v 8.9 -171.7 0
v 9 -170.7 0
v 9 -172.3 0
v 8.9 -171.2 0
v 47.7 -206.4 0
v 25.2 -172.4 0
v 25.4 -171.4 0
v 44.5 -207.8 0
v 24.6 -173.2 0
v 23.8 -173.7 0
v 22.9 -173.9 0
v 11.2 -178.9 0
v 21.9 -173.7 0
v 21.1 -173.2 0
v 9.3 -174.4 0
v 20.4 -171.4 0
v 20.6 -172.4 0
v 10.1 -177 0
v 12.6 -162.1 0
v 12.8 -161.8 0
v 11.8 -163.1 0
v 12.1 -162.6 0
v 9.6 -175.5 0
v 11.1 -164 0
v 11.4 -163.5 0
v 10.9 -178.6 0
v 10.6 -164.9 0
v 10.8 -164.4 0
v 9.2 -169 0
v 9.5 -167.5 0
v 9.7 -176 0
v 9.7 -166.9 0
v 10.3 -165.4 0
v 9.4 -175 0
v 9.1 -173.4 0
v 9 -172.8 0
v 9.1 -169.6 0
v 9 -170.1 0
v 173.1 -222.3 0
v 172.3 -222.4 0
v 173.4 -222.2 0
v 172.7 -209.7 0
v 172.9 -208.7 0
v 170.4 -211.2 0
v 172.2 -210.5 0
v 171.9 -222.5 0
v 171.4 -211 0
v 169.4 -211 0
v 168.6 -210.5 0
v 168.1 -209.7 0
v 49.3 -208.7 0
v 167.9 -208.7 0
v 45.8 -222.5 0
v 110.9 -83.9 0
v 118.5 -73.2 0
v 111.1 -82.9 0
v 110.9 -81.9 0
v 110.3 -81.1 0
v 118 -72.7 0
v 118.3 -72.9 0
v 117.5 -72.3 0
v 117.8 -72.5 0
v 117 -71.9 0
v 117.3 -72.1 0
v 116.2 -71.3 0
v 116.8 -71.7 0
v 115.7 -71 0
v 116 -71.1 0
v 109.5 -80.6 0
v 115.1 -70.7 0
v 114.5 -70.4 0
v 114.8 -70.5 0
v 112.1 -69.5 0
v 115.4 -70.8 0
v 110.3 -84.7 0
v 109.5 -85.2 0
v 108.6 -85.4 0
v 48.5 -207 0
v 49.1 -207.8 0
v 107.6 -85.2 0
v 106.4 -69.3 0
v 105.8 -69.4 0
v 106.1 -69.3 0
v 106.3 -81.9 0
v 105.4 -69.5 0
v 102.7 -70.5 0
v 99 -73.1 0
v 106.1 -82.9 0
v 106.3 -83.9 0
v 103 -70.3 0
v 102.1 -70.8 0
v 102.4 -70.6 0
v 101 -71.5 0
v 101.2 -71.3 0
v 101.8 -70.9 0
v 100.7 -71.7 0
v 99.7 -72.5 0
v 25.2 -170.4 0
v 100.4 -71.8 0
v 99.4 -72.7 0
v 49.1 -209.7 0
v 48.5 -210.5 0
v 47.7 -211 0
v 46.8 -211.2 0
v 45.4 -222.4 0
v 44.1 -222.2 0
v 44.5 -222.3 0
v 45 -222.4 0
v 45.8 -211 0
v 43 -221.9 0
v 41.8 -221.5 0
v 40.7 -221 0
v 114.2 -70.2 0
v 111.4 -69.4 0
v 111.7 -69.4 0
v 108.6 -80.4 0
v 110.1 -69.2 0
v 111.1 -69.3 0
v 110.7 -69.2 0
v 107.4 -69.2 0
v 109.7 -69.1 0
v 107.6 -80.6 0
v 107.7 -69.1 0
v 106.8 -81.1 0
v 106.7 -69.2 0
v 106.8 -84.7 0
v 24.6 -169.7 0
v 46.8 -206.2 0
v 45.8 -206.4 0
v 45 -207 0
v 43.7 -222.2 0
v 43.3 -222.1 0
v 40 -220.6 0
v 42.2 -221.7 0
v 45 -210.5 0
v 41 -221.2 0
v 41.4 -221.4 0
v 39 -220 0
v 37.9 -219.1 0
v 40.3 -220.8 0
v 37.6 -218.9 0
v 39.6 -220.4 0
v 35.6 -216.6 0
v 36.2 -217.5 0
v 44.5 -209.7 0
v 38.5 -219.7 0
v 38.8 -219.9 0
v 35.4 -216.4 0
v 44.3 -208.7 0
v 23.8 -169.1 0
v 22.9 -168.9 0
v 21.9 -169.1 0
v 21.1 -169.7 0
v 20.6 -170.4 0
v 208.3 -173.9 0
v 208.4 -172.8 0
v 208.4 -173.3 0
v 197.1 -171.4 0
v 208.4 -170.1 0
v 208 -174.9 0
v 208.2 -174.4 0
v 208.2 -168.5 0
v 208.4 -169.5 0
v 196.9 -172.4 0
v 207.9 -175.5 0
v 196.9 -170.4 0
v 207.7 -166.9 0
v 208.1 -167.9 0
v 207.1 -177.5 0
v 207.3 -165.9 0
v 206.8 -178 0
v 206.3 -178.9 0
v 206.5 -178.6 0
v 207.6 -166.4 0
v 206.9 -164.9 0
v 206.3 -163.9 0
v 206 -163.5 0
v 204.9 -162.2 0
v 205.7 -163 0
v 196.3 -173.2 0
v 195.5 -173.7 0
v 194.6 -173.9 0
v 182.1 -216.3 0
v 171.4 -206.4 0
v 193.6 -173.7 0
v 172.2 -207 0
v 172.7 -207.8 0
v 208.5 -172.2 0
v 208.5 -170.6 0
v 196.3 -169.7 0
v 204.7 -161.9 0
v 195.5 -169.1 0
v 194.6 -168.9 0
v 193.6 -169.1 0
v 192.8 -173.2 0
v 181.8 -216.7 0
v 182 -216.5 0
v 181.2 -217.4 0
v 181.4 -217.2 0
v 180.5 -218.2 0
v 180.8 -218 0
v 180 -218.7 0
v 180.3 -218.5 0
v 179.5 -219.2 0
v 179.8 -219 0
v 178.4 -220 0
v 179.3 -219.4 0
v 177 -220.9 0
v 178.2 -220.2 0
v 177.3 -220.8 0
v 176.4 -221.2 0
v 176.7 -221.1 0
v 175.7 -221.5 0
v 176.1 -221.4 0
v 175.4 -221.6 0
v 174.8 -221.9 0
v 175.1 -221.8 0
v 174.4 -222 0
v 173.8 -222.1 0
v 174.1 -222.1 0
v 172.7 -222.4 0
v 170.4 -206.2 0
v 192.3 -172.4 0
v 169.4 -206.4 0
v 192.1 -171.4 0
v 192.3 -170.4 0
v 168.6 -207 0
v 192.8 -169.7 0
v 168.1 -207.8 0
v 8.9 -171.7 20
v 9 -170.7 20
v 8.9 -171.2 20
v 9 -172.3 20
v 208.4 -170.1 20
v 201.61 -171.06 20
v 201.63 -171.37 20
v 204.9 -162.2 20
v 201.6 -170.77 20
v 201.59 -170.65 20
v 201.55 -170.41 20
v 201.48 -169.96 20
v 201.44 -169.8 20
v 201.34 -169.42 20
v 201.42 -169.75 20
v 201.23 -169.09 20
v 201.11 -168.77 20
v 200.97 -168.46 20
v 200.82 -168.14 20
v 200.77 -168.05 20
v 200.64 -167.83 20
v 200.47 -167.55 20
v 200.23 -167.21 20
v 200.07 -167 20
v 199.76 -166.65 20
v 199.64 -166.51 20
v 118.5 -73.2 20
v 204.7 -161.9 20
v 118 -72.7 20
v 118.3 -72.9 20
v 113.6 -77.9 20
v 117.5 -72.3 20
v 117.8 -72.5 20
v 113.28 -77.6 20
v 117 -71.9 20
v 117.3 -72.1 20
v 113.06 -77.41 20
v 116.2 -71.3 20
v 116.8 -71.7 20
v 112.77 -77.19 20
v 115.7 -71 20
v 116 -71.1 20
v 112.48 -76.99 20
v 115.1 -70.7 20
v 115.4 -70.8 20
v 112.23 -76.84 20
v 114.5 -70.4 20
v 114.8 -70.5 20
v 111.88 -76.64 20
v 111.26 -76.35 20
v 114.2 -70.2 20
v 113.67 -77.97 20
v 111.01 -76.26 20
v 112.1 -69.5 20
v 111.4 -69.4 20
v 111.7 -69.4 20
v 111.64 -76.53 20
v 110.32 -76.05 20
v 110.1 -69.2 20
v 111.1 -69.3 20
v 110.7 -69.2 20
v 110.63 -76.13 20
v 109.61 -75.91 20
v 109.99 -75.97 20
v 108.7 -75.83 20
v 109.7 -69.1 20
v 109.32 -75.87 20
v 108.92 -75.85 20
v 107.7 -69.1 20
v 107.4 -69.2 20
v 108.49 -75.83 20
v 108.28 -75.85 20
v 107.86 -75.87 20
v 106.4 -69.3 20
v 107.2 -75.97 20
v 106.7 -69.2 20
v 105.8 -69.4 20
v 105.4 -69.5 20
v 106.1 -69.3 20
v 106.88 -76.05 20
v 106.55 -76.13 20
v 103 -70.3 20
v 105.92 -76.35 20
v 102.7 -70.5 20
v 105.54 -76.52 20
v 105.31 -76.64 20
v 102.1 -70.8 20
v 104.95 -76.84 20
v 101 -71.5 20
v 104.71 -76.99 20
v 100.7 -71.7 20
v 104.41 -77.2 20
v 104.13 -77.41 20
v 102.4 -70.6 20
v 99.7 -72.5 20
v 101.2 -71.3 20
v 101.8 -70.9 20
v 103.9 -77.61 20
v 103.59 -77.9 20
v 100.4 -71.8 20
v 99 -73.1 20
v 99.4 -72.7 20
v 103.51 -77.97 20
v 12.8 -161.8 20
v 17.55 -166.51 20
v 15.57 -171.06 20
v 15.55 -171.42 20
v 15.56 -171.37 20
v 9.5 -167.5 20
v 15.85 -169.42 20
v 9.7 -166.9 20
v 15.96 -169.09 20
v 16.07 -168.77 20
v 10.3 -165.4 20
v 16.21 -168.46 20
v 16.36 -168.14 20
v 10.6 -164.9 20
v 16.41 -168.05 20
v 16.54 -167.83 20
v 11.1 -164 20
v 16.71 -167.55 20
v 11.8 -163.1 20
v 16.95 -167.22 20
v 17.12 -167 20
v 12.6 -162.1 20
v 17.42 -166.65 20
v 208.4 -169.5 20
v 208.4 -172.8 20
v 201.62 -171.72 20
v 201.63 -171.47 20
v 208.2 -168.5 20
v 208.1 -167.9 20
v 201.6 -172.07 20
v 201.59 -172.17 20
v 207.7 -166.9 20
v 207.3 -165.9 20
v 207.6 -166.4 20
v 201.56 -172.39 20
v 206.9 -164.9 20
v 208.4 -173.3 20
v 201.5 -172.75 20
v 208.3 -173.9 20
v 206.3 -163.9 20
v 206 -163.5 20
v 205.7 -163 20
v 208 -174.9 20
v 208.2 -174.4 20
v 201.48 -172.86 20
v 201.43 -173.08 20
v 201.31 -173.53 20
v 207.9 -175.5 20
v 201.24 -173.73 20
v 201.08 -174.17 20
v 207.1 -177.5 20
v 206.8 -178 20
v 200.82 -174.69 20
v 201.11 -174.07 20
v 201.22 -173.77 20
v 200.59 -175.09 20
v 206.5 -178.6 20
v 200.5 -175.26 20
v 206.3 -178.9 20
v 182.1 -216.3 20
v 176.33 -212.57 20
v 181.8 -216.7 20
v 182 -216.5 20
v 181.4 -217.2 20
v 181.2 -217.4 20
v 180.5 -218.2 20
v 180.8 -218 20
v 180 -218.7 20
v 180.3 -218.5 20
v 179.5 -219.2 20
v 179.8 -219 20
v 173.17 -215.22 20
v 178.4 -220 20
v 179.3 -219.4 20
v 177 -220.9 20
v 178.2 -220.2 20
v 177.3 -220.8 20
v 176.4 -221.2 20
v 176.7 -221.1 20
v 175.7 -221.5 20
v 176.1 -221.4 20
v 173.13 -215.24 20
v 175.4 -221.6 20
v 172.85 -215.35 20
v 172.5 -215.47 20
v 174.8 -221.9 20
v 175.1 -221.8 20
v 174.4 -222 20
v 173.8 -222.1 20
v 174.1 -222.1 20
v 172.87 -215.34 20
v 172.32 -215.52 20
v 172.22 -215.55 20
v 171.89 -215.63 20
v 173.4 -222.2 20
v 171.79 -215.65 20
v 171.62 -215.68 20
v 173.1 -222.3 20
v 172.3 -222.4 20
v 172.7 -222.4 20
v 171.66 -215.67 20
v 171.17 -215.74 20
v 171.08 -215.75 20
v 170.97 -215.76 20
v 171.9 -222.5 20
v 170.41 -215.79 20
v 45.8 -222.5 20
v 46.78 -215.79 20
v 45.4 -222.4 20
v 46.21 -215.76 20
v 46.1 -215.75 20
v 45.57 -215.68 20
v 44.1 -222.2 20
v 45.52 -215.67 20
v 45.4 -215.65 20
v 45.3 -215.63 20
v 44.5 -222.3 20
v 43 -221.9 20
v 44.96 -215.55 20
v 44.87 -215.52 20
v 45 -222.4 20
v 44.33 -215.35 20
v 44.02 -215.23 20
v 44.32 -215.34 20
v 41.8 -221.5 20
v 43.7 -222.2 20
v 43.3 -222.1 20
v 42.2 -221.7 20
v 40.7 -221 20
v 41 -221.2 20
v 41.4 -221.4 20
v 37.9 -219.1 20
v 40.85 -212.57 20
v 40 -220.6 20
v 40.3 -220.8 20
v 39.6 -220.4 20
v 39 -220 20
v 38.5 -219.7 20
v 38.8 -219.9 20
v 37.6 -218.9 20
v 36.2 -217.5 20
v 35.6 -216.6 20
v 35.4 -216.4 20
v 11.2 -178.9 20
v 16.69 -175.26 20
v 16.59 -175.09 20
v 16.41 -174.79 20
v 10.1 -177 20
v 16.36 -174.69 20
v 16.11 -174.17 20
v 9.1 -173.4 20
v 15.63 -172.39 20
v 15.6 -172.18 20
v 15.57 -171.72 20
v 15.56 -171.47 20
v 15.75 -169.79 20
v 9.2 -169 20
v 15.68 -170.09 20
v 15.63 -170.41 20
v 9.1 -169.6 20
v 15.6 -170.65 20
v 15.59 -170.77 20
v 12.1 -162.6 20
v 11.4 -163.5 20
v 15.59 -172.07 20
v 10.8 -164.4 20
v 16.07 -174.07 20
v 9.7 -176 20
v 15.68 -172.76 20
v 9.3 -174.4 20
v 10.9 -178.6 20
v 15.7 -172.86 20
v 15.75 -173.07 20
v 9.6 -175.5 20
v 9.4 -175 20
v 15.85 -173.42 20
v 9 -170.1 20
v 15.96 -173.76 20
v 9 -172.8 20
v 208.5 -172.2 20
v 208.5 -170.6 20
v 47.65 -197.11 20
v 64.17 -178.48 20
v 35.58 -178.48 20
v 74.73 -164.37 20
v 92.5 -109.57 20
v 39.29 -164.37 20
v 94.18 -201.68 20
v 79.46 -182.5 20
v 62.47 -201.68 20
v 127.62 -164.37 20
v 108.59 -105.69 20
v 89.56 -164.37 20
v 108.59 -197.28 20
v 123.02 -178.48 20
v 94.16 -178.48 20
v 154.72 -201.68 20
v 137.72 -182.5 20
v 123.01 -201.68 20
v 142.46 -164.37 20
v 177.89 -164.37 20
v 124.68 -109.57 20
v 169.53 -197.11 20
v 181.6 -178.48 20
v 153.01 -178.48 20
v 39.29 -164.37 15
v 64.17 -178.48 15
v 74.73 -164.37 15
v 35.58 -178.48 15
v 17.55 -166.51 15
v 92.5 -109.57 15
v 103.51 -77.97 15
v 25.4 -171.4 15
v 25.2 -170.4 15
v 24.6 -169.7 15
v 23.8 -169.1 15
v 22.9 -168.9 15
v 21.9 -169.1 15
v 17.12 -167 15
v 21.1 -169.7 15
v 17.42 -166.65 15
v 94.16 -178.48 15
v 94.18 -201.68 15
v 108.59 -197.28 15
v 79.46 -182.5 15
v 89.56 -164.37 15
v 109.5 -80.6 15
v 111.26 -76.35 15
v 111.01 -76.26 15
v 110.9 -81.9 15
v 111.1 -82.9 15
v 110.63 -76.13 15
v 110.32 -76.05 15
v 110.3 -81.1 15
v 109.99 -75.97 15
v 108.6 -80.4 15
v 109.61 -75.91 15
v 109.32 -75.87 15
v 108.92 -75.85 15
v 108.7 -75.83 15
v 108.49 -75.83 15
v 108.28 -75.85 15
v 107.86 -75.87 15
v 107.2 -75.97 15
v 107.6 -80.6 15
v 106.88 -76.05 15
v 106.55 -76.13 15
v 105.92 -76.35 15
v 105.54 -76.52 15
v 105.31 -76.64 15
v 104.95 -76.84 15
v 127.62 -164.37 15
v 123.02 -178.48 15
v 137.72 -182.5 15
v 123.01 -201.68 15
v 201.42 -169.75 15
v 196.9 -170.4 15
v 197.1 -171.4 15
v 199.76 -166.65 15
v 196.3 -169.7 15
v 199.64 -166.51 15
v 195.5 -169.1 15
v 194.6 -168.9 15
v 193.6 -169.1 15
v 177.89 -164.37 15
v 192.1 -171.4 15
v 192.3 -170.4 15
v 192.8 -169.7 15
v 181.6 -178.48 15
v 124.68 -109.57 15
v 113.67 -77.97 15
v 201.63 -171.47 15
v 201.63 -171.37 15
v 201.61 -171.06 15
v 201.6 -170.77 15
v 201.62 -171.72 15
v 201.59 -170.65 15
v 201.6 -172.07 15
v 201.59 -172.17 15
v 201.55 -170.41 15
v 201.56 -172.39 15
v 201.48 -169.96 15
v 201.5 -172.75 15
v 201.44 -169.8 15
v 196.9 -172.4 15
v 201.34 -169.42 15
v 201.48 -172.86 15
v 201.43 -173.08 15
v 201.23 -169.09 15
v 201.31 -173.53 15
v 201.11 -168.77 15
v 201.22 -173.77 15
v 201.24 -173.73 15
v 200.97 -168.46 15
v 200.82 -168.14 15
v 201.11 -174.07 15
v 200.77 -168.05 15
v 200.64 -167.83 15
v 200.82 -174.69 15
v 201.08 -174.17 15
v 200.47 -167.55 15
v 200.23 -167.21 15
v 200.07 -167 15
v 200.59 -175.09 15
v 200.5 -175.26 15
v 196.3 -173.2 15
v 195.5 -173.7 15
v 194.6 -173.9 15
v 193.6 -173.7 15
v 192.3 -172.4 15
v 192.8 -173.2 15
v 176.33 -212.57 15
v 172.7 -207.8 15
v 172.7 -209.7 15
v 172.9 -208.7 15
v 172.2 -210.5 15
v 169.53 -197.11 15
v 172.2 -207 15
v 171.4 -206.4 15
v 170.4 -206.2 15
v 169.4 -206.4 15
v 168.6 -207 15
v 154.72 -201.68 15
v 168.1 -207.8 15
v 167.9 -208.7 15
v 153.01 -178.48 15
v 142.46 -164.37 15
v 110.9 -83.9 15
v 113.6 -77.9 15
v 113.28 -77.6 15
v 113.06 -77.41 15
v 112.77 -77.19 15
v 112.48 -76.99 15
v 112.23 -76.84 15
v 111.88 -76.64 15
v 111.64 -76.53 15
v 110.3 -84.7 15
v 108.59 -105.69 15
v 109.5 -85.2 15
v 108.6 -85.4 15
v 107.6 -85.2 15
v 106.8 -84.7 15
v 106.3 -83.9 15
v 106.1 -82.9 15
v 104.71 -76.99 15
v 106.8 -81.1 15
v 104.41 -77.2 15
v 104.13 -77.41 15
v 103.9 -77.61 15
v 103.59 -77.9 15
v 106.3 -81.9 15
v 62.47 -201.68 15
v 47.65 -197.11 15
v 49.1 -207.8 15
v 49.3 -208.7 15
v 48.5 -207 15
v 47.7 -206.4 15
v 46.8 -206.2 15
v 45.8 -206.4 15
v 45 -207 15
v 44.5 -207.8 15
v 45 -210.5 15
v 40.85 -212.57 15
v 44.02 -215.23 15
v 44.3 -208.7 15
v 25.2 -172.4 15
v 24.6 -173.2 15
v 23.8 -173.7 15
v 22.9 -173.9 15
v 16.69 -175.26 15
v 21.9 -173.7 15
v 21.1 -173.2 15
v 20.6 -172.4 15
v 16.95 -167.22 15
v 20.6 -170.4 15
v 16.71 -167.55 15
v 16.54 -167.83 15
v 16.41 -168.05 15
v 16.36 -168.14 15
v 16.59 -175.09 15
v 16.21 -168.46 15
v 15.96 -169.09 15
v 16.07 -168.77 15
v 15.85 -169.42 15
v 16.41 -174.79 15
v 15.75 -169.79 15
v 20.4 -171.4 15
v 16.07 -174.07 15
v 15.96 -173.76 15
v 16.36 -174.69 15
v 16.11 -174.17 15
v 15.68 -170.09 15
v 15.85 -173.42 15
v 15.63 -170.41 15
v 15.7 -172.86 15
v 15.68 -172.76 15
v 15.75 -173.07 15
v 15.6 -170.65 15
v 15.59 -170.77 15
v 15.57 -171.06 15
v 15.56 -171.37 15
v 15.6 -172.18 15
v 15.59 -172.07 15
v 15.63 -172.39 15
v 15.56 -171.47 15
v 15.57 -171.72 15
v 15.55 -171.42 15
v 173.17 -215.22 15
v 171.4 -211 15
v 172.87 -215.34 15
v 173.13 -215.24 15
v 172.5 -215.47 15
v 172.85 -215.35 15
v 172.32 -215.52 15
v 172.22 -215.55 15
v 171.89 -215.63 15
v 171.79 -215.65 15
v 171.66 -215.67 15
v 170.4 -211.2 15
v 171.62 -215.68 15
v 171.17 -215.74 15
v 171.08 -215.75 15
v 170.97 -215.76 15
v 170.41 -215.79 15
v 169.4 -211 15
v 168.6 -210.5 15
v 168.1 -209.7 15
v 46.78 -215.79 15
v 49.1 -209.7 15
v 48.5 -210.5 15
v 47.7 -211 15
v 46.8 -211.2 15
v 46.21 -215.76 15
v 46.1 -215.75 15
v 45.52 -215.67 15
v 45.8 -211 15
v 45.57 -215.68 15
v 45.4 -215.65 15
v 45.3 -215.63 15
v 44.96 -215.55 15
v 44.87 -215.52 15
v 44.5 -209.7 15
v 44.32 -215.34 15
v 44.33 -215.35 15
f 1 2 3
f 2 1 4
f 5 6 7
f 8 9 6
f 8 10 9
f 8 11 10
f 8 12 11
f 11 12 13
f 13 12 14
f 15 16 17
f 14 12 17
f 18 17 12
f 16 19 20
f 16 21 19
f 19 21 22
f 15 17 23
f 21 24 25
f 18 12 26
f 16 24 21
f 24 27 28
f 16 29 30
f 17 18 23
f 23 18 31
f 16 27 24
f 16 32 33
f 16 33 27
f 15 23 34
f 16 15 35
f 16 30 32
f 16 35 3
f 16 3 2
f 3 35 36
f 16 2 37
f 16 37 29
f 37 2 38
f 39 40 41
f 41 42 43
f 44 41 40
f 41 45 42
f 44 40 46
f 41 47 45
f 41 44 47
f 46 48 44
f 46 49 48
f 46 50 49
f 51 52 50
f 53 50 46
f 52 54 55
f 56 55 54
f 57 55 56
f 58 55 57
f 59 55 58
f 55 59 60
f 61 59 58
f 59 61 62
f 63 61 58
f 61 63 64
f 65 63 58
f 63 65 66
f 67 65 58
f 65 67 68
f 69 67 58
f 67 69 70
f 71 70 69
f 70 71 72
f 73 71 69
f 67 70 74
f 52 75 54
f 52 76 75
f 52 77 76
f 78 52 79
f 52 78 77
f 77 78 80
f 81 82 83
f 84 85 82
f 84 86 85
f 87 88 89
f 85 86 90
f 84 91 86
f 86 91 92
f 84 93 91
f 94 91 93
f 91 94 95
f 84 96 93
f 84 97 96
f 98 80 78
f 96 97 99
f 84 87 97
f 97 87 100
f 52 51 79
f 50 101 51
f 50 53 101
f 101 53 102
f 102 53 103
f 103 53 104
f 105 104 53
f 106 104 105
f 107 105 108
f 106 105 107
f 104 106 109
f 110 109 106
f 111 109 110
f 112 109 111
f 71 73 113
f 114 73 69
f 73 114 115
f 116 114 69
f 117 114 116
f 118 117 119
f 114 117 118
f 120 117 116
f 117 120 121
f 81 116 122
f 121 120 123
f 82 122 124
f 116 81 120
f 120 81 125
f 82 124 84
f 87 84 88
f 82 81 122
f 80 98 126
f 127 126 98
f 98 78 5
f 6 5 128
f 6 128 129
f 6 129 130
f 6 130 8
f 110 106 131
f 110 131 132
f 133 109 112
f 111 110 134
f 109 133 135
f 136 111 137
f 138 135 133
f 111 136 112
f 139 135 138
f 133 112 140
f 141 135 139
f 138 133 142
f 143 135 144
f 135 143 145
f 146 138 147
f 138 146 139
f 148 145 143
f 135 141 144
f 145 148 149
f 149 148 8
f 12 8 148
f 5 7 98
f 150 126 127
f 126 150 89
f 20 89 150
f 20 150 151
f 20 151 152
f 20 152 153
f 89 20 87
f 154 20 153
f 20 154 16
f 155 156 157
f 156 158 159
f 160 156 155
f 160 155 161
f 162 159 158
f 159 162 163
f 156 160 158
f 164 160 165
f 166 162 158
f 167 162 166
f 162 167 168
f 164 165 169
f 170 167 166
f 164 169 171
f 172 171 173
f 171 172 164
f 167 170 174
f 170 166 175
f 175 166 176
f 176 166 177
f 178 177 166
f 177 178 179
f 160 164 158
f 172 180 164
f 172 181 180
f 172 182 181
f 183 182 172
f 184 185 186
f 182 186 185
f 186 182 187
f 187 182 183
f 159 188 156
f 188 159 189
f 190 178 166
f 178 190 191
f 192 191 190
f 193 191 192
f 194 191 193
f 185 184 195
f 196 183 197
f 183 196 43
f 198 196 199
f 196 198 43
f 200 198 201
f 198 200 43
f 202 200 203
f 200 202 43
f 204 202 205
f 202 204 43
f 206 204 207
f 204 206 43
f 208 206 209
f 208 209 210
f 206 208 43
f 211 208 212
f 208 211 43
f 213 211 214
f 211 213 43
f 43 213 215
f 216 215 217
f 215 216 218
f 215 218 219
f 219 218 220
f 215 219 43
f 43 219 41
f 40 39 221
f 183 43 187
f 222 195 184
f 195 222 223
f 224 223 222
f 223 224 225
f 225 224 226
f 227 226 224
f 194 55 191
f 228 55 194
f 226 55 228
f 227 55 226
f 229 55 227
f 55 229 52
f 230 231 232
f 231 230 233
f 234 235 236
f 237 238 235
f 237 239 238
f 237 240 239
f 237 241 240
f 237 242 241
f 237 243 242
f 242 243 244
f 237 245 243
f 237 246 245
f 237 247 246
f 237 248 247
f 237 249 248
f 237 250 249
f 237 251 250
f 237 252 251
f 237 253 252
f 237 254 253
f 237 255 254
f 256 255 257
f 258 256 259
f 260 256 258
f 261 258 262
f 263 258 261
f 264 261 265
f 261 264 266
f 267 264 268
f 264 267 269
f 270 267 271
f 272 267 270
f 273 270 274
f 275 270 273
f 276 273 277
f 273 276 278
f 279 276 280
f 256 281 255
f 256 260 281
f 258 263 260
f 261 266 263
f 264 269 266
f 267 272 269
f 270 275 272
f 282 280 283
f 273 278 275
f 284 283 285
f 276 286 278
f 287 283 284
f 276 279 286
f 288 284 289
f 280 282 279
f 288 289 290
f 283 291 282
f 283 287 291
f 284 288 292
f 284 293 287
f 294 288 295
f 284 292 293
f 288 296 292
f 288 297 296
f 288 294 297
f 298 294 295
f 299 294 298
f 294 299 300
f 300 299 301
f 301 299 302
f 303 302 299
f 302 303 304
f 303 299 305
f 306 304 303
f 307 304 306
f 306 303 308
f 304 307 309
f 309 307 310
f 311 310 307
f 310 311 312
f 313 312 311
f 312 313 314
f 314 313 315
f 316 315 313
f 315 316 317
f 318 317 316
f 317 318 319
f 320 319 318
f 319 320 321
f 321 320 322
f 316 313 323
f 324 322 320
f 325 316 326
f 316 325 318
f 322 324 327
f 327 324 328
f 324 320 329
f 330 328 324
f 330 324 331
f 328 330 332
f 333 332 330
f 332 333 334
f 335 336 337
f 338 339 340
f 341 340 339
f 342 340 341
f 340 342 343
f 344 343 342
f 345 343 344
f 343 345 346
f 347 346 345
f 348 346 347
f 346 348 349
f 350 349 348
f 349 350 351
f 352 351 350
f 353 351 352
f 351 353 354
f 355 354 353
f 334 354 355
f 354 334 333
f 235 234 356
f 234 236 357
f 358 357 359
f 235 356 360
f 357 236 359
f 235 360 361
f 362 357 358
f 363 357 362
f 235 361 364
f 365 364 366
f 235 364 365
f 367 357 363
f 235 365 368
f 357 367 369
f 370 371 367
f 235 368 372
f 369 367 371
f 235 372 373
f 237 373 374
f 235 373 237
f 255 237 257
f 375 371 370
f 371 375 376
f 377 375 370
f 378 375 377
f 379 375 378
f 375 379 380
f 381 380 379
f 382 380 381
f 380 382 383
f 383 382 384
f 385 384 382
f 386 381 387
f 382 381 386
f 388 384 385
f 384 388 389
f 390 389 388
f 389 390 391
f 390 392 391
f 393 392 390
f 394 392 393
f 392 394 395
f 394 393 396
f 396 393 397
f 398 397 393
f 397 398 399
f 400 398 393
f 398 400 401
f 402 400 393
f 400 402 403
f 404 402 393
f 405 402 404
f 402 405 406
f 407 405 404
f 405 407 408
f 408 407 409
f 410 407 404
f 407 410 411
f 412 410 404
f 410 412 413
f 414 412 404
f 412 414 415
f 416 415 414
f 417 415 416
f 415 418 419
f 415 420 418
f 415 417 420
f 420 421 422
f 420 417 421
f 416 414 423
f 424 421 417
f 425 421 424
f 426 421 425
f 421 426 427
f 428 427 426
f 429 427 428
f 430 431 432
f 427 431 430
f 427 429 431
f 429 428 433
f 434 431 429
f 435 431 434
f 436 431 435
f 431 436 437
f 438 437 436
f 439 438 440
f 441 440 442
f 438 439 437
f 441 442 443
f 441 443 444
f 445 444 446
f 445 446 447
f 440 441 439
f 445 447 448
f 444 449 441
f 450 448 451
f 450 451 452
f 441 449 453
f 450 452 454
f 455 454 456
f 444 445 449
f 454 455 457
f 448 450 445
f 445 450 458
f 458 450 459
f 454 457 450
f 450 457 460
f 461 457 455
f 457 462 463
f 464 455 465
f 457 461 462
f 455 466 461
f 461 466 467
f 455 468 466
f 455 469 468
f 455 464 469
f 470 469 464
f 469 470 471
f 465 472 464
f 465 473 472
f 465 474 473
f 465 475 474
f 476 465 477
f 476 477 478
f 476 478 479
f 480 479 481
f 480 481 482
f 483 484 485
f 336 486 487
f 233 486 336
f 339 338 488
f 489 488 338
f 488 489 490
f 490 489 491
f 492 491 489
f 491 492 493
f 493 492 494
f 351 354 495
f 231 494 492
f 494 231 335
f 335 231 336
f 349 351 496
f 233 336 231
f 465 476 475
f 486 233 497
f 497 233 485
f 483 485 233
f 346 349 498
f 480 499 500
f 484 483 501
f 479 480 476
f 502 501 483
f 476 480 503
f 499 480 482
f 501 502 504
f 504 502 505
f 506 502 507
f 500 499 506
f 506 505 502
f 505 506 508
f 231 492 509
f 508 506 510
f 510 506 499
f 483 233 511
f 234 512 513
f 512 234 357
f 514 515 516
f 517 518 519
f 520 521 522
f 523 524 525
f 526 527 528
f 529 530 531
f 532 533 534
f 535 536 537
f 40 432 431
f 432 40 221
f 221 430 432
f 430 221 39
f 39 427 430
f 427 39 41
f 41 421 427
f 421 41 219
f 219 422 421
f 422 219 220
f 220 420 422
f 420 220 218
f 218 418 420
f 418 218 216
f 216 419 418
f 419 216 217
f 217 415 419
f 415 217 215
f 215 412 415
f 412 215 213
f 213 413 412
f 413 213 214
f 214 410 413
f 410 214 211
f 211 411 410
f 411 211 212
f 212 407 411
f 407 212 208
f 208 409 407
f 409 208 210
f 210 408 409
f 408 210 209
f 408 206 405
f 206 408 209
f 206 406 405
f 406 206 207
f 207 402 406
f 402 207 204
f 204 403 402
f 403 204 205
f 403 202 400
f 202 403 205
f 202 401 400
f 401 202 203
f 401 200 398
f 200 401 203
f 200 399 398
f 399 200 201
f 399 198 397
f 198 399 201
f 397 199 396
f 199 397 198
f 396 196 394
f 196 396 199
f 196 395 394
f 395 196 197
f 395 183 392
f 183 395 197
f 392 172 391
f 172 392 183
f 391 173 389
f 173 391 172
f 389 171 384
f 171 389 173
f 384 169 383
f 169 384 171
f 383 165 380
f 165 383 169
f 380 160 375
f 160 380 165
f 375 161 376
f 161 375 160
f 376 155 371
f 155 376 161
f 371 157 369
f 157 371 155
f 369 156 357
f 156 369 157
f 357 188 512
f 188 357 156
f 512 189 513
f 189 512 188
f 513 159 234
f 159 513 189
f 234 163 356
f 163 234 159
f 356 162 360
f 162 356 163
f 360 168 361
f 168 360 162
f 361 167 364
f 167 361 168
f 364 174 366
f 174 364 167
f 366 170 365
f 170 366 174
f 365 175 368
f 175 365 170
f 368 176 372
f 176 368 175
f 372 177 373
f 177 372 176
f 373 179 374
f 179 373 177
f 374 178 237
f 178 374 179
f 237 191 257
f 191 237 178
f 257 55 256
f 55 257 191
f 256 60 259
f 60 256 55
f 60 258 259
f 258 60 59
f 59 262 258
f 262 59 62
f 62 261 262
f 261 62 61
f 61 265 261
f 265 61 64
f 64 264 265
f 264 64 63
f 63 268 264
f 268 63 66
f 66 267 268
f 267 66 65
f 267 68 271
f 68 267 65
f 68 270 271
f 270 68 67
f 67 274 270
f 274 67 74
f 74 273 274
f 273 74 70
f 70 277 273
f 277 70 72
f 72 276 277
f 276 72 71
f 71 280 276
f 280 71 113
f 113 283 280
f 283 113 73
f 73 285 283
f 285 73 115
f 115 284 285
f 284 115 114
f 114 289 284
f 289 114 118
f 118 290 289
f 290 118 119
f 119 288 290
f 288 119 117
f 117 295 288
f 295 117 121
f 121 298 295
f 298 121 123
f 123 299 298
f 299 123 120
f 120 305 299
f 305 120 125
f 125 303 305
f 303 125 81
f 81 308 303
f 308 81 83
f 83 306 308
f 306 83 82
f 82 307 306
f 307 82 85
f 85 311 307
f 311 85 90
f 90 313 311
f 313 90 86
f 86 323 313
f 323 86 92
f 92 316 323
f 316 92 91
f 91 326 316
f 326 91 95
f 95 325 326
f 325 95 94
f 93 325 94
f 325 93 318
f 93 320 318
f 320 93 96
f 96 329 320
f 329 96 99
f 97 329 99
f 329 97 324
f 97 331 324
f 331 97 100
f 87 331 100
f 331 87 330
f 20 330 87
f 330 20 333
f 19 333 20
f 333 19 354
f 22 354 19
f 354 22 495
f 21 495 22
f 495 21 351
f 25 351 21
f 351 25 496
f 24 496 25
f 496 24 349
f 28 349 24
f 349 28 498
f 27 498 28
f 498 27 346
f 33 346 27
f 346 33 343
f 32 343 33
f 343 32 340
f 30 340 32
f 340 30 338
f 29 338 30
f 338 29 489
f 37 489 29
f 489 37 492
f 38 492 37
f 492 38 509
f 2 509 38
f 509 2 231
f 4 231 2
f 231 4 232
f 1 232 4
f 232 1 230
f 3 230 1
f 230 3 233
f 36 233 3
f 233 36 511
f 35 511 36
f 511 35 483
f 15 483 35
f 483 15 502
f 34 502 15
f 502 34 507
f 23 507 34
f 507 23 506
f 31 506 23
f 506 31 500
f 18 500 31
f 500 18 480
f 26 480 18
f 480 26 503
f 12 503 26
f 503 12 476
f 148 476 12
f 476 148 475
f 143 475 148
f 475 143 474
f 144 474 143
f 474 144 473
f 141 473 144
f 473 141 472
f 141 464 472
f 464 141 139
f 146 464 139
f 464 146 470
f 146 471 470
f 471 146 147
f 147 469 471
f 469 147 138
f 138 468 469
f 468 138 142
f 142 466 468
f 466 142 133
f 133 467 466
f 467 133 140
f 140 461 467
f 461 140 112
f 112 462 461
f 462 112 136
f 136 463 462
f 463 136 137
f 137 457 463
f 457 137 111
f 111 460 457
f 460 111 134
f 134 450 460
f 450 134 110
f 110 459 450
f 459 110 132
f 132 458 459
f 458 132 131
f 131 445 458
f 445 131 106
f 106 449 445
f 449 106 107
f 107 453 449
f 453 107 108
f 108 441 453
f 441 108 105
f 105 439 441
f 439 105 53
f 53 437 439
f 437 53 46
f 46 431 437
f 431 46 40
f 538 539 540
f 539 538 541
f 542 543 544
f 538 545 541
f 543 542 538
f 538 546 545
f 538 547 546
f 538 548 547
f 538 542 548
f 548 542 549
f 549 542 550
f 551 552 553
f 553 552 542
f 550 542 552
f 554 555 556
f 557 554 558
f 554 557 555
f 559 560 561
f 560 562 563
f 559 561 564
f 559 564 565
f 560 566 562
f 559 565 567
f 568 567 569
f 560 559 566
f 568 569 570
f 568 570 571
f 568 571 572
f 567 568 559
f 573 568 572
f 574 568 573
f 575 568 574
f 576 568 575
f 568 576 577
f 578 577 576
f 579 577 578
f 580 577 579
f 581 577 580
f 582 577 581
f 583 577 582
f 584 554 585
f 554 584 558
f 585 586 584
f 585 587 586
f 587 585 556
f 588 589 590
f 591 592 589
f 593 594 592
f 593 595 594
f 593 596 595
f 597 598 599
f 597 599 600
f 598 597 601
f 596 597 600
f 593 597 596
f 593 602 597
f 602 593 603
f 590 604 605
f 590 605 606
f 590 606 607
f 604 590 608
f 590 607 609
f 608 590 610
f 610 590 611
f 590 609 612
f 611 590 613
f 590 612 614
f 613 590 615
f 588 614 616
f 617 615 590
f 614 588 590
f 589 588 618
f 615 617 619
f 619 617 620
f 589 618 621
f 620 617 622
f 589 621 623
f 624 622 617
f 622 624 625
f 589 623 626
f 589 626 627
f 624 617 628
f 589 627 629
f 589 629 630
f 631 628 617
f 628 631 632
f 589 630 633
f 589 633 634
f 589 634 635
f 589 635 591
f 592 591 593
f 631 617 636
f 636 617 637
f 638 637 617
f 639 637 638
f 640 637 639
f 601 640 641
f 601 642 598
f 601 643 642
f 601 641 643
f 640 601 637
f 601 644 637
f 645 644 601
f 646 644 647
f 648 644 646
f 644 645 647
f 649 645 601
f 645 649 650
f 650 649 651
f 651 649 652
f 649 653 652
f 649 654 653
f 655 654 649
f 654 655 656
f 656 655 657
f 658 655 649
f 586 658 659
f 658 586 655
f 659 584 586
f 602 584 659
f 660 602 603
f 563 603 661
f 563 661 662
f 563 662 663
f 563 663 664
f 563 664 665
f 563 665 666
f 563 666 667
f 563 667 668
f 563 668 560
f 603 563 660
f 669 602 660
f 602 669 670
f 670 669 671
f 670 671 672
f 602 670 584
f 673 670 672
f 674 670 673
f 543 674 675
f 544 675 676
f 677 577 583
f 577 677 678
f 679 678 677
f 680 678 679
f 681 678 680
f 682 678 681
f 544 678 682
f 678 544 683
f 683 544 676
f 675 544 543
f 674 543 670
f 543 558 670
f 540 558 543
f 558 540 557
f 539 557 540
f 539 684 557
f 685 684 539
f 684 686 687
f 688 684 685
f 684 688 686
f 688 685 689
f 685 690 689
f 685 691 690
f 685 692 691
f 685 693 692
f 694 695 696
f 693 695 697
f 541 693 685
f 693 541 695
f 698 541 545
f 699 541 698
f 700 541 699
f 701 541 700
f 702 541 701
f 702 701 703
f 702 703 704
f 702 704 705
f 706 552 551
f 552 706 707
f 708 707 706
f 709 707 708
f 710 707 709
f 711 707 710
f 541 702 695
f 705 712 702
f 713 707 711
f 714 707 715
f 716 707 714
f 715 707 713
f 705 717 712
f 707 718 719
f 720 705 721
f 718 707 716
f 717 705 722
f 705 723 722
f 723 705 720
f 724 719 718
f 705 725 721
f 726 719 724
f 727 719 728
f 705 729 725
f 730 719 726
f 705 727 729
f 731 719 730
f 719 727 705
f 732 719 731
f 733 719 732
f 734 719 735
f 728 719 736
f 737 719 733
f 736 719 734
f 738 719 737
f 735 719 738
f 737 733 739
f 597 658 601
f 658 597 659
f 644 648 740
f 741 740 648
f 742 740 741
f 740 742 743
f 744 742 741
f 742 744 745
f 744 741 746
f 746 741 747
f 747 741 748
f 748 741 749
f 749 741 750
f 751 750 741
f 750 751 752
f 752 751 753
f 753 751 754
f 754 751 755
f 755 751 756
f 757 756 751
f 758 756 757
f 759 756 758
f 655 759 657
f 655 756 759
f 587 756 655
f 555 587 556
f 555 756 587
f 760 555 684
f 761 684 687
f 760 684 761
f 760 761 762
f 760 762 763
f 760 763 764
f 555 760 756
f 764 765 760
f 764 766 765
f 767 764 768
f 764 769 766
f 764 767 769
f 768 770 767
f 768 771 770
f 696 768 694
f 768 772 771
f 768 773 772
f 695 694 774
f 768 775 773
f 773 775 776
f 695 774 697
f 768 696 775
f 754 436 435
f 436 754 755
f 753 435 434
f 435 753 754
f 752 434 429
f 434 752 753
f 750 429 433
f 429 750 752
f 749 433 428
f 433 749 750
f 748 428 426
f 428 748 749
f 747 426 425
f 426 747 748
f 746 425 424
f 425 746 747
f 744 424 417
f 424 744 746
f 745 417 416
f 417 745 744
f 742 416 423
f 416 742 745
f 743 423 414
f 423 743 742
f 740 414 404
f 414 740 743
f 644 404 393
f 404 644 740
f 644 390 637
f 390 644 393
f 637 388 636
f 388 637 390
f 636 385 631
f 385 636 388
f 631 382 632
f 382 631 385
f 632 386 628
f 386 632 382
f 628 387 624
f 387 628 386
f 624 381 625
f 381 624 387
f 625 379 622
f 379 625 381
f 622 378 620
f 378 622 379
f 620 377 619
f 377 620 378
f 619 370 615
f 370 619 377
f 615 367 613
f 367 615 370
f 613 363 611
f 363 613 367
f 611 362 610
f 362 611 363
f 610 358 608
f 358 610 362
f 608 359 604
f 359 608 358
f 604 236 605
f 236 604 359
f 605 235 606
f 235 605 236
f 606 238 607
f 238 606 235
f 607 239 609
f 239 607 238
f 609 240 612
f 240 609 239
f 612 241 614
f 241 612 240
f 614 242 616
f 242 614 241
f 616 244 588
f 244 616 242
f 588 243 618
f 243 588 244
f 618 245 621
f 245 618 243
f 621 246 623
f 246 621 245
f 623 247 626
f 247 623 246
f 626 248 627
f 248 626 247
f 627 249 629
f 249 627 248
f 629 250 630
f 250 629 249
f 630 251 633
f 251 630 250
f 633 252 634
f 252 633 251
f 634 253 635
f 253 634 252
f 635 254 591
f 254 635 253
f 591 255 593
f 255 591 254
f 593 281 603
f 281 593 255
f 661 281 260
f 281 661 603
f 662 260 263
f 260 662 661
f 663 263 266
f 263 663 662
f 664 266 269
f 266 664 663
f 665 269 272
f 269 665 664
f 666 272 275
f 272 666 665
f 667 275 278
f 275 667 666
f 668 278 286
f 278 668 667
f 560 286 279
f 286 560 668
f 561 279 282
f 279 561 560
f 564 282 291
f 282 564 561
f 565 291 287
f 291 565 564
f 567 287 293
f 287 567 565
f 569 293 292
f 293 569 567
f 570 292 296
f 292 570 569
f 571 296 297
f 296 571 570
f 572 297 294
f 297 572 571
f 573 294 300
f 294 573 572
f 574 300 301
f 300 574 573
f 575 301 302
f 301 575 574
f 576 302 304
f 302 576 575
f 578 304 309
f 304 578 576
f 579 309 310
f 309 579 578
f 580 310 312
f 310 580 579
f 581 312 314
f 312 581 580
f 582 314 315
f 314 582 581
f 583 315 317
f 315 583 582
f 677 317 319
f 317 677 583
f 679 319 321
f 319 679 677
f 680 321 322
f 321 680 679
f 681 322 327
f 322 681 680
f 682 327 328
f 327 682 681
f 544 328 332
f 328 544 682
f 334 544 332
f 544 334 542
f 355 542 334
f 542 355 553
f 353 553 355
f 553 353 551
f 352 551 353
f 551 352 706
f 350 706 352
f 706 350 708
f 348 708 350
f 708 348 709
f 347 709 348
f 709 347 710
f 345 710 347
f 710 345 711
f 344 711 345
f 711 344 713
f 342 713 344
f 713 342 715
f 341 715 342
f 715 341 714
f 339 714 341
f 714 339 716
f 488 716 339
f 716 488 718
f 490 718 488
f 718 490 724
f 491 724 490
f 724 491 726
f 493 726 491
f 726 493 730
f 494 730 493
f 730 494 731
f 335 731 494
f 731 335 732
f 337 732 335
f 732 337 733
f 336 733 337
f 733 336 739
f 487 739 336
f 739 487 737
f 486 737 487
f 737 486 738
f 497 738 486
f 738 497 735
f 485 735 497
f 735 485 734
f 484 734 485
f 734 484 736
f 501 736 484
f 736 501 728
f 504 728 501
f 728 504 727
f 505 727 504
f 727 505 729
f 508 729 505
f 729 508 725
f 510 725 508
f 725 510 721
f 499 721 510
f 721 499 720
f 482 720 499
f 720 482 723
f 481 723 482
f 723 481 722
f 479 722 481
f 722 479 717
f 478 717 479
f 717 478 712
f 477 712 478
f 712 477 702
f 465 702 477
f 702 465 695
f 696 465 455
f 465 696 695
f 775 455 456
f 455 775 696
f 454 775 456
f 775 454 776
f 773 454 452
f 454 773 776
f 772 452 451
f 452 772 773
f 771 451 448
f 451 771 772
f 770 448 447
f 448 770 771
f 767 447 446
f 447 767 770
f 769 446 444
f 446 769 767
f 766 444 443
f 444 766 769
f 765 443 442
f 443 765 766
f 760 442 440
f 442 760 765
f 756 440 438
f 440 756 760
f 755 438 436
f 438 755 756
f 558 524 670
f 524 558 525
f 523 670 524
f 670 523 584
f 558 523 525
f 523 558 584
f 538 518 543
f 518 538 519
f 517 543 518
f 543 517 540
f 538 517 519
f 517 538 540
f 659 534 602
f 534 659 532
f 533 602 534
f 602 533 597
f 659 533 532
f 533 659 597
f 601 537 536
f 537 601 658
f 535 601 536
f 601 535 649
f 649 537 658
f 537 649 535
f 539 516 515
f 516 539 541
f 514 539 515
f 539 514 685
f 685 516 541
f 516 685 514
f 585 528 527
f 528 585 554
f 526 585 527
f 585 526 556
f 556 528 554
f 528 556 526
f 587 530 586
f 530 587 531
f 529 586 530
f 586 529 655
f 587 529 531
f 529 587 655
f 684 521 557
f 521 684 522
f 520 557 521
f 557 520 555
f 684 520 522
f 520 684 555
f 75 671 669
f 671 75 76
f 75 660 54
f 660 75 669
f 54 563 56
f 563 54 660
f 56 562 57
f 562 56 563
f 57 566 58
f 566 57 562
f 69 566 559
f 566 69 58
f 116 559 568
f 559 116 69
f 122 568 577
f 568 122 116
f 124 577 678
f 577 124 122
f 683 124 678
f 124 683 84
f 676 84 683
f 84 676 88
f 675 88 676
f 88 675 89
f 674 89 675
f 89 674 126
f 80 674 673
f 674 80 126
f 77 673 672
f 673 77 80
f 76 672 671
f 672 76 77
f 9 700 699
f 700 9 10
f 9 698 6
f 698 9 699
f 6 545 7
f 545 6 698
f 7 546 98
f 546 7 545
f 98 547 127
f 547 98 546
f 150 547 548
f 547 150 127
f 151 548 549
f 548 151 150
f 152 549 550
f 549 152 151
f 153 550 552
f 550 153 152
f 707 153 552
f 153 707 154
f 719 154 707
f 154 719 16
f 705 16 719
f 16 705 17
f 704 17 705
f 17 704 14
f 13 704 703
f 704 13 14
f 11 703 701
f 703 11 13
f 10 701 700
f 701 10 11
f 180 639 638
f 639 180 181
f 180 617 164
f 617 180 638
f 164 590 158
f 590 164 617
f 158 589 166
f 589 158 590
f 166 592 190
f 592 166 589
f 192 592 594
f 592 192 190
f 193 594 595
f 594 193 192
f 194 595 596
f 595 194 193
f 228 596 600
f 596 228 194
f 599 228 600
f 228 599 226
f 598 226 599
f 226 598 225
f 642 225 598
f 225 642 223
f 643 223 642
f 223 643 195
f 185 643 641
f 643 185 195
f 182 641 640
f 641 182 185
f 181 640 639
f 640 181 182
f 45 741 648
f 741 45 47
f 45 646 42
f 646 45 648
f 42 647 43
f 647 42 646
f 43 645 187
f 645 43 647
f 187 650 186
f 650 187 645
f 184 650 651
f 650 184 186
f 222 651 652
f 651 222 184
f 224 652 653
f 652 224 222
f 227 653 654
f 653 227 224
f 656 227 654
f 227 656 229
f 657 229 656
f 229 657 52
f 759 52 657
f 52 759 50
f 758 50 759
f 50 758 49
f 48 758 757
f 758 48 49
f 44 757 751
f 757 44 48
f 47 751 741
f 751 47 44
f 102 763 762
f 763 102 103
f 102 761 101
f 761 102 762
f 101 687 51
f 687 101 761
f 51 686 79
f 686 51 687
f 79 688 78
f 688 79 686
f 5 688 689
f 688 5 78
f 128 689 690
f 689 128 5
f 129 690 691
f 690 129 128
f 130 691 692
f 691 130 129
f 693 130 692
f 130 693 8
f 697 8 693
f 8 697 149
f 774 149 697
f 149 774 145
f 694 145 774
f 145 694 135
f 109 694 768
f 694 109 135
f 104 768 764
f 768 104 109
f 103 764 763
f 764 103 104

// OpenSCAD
/*
 
    Euro cheeks for 3D printer, Laser or CNC
    Works in steel, wood, plastic and carton.
    Adjust thickness to needs.

      .'.     
    .'/ \'.   
  .'_/___\_'. 
  \_/_\_/_\_/ 

    A  W  G  
    -------
    Presented by Australian Wave Guides

*/

thickness = 20;
engraveDepth = 5;



$fn = 100; // Smooth Model
engraveDiff = thickness - engraveDepth;

difference(){
    
    // awg_cheek_outline.dxf
    linear_extrude(height = thickness) {
        polygon(points=[[46.9,-222.5],[46.5,-222.5],[46.1,-222.5],[45.8,-222.5],[45.4,-222.4],[45,-222.4],[44.5,-222.3],[44.1,-222.2],[43.7,-222.2],[43.3,-222.1],[43,-221.9],[42.6,-221.8],[42.2,-221.7],[41.8,-221.5],[41.4,-221.4],[41,-221.2],[40.7,-221],[40.3,-220.8],[40,-220.6],[39.6,-220.4],[39.3,-220.2],[39,-220],[38.8,-219.9],[38.5,-219.7],[38.3,-219.5],[38.1,-219.3],[37.9,-219.1],[37.6,-218.9],[37.4,-218.7],[37.2,-218.5],[37,-218.3],[36.8,-218.1],[36.6,-217.9],[36.4,-217.7],[36.2,-217.5],[36,-217.2],[35.8,-216.9],[35.6,-216.6],[35.4,-216.4],[11.2,-178.9],[10.9,-178.6],[10.6,-178],[10.4,-177.6],[10.1,-177],[9.9,-176.5],[9.7,-176],[9.6,-175.5],[9.4,-175],[9.3,-174.4],[9.2,-173.9],[9.1,-173.4],[9,-172.8],[9,-172.3],[8.9,-171.7],[8.9,-171.2],[9,-170.7],[9,-170.1],[9.1,-169.6],[9.2,-169],[9.3,-168.5],[9.4,-168],[9.5,-167.5],[9.7,-166.9],[9.9,-166.4],[10.1,-165.9],[10.3,-165.4],[10.6,-164.9],[10.8,-164.4],[11.1,-164],[11.4,-163.5],[11.8,-163.1],[12.1,-162.6],[12.6,-162.1],[12.8,-161.8],[99,-73.1],[99.4,-72.7],[99.7,-72.5],[99.9,-72.3],[100.2,-72],[100.4,-71.8],[100.7,-71.7],[101,-71.5],[101.2,-71.3],[101.5,-71.1],[101.8,-70.9],[102.1,-70.8],[102.4,-70.6],[102.7,-70.5],[103,-70.3],[103.3,-70.2],[103.6,-70.1],[103.9,-70],[104.2,-69.9],[104.5,-69.8],[104.8,-69.7],[105.1,-69.6],[105.4,-69.5],[105.8,-69.4],[106.1,-69.3],[106.4,-69.3],[106.7,-69.2],[107.1,-69.2],[107.4,-69.2],[107.7,-69.1],[108,-69.1],[108.4,-69.1],[108.7,-69.1],[109,-69.1],[109.4,-69.1],[109.7,-69.1],[110.1,-69.2],[110.4,-69.2],[110.7,-69.2],[111.1,-69.3],[111.4,-69.4],[111.7,-69.4],[112.1,-69.5],[112.4,-69.6],[112.7,-69.7],[113,-69.8],[113.3,-69.9],[113.6,-70],[113.9,-70.1],[114.2,-70.2],[114.5,-70.4],[114.8,-70.5],[115.1,-70.7],[115.4,-70.8],[115.7,-71],[116,-71.1],[116.2,-71.3],[116.5,-71.5],[116.8,-71.7],[117,-71.9],[117.3,-72.1],[117.5,-72.3],[117.8,-72.5],[118,-72.7],[118.3,-72.9],[118.3,-72.9],[118.5,-73.2],[204.7,-161.9],[204.9,-162.2],[205.3,-162.6],[205.7,-163],[206,-163.5],[206.3,-163.9],[206.6,-164.4],[206.9,-164.9],[207.1,-165.4],[207.3,-165.9],[207.6,-166.4],[207.7,-166.9],[207.9,-167.4],[208.1,-167.9],[208.2,-168.5],[208.3,-169],[208.4,-169.5],[208.4,-170.1],[208.5,-170.6],[208.5,-171.2],[208.5,-171.7],[208.5,-172.2],[208.4,-172.8],[208.4,-173.3],[208.3,-173.9],[208.2,-174.4],[208,-174.9],[207.9,-175.5],[207.7,-176],[207.5,-176.5],[207.3,-177],[207.1,-177.5],[206.8,-178],[206.5,-178.6],[206.3,-178.9],[182.1,-216.3],[182,-216.5],[181.8,-216.7],[181.4,-217.2],[181.2,-217.4],[181,-217.7],[180.8,-218],[180.5,-218.2],[180.3,-218.5],[180,-218.7],[179.8,-219],[179.5,-219.2],[179.3,-219.4],[179,-219.6],[178.7,-219.8],[178.4,-220],[178.2,-220.2],[177.9,-220.4],[177.6,-220.6],[177.3,-220.8],[177,-220.9],[176.7,-221.1],[176.4,-221.2],[176.1,-221.4],[175.7,-221.5],[175.4,-221.6],[175.1,-221.8],[174.8,-221.9],[174.4,-222],[174.1,-222.1],[173.8,-222.1],[173.4,-222.2],[173.1,-222.3],[172.7,-222.4],[172.3,-222.4],[171.9,-222.5],[171.4,-222.5],[171,-222.5],[170.5,-222.5],[46.9,-222.5]]);
    };

    translate([0,0,engraveDiff]) {
        // awg_cheek_engrave.dxf
        linear_extrude(height = thickness) {
            polygon(points=[[169.53,-197.11],[153.01,-178.48],[181.6,-178.48],[137.72,-182.5],[154.72,-201.68],[123.01,-201.68],[79.46,-182.5],[94.18,-201.68],[62.47,-201.68],[64.17,-178.48],[47.65,-197.11],[35.58,-178.48],[74.73,-164.37],[39.29,-164.37],[92.5,-109.57],[124.68,-109.57],[177.89,-164.37],[142.46,-164.37],[123.02,-178.48],[108.59,-197.28],[94.16,-178.48],[89.56,-164.37],[108.59,-105.69],[127.62,-164.37],[200.94,-174.45],[201.08,-174.17],[201.11,-174.07],[201.22,-173.77],[201.24,-173.73],[201.31,-173.53],[201.34,-173.42],[201.43,-173.08],[201.48,-172.86],[201.5,-172.75],[201.56,-172.39],[201.59,-172.17],[201.6,-172.07],[201.62,-171.72],[201.63,-171.47],[201.63,-171.42],[201.63,-171.37],[201.61,-171.06],[201.6,-170.77],[201.59,-170.65],[201.55,-170.41],[201.5,-170.09],[201.48,-169.96],[201.44,-169.8],[201.42,-169.75],[201.34,-169.42],[201.23,-169.09],[201.11,-168.77],[200.97,-168.46],[200.82,-168.14],[200.77,-168.05],[200.64,-167.83],[200.47,-167.55],[200.23,-167.21],[200.07,-167],[199.76,-166.65],[199.64,-166.51],[113.67,-77.97],[113.6,-77.9],[113.28,-77.6],[113.06,-77.41],[112.77,-77.19],[112.48,-76.99],[112.23,-76.84],[111.88,-76.64],[111.64,-76.53],[111.26,-76.35],[111.01,-76.26],[110.63,-76.13],[110.32,-76.05],[109.99,-75.97],[109.61,-75.91],[109.32,-75.87],[108.92,-75.85],[108.7,-75.83],[108.59,-75.83],[108.49,-75.83],[108.28,-75.85],[107.86,-75.87],[107.59,-75.91],[107.2,-75.97],[106.88,-76.05],[106.55,-76.13],[106.18,-76.26],[105.92,-76.35],[105.54,-76.52],[105.31,-76.64],[104.95,-76.84],[104.71,-76.99],[104.41,-77.2],[104.13,-77.41],[103.9,-77.61],[103.59,-77.9],[103.51,-77.97],[17.55,-166.51],[17.42,-166.65],[17.12,-167],[16.95,-167.22],[16.71,-167.55],[16.54,-167.83],[16.41,-168.05],[16.36,-168.14],[16.21,-168.46],[16.07,-168.77],[15.96,-169.09],[15.85,-169.42],[15.76,-169.75],[15.75,-169.79],[15.71,-169.96],[15.68,-170.09],[15.63,-170.41],[15.6,-170.65],[15.59,-170.77],[15.57,-171.06],[15.56,-171.37],[15.55,-171.42],[15.56,-171.47],[15.57,-171.72],[15.59,-172.07],[15.6,-172.18],[15.63,-172.39],[15.68,-172.76],[15.7,-172.86],[15.75,-173.07],[15.85,-173.42],[15.96,-173.76],[16.07,-174.07],[16.11,-174.17],[16.24,-174.44],[16.36,-174.69],[16.41,-174.79],[16.59,-175.09],[16.69,-175.26],[40.85,-212.57],[44.02,-215.23],[44.05,-215.24],[44.32,-215.34],[44.33,-215.35],[44.87,-215.52],[44.96,-215.55],[45.3,-215.63],[45.4,-215.65],[45.52,-215.67],[45.57,-215.68],[46.02,-215.74],[46.1,-215.75],[46.21,-215.76],[46.78,-215.79],[46.8,-215.79],[170.39,-215.79],[170.41,-215.79],[170.97,-215.76],[171.08,-215.75],[171.17,-215.74],[171.62,-215.68],[171.66,-215.67],[171.79,-215.65],[171.89,-215.63],[172.22,-215.55],[172.32,-215.52],[172.5,-215.47],[172.5,-215.47],[172.85,-215.35],[172.87,-215.34],[173.13,-215.24],[173.17,-215.22],[176.33,-212.57],[200.5,-175.26],[200.59,-175.09],[200.82,-174.69]], paths=[[0,1,2],[3,4,5],[6,7,8],[9,10,11],[12,13,14],[15,16,17],[18,19,20],[21,22,23],[24,25,26,27,28,29,30,31,32,33,34,35,36,37,38,39,40,41,42,43,44,45,46,47,48,49,50,51,52,53,54,55,56,57,58,59,60,61,62,63,64,65,66,67,68,69,70,71,72,73,74,75,76,77,78,79,80,81,82,83,84,85,86,87,88,89,90,91,92,93,94,95,96,97,98,99,100,101,102,103,104,105,106,107,108,109,110,111,112,113,114,115,116,117,118,119,120,121,122,123,124,125,126,127,128,129,130,131,132,133,134,135,136,137,138,139,140,141,142,143,144,145,146,147,148,149,150,151,152,153,154,155,156,157,158,159,160,161,162,163,164,165,166,167,168,169,170,171,172,173]]);    
        };
    };
    
    translate([0,0,-5]) {
        // awg_cheek_holes.dxf
        linear_extrude(height = thickness+10) {
            polygon(points=[[172.2,-207],[171.4,-206.4],[170.4,-206.2],[169.4,-206.4],[168.6,-207],[168.1,-207.8],[167.9,-208.7],[168.1,-209.7],[168.6,-210.5],[169.4,-211],[170.4,-211.2],[171.4,-211],[172.2,-210.5],[172.7,-209.7],[172.9,-208.7],[172.7,-207.8],[172.2,-207]]);polygon(points=[[48.5,-207],[47.7,-206.4],[46.8,-206.2],[45.8,-206.4],[45,-207],[44.5,-207.8],[44.3,-208.7],[44.5,-209.7],[45,-210.5],[45.8,-211],[46.8,-211.2],[47.7,-211],[48.5,-210.5],[49.1,-209.7],[49.3,-208.7],[49.1,-207.8],[48.5,-207]]);polygon(points=[[24.6,-169.7],[23.8,-169.1],[22.9,-168.9],[21.9,-169.1],[21.1,-169.7],[20.6,-170.4],[20.4,-171.4],[20.6,-172.4],[21.1,-173.2],[21.9,-173.7],[22.9,-173.9],[23.8,-173.7],[24.6,-173.2],[25.2,-172.4],[25.4,-171.4],[25.2,-170.4],[24.6,-169.7]]);polygon(points=[[196.9,-170.4],[196.3,-169.7],[195.5,-169.1],[194.6,-168.9],[193.6,-169.1],[192.8,-169.7],[192.3,-170.4],[192.1,-171.4],[192.3,-172.4],[192.8,-173.2],[193.6,-173.7],[194.6,-173.9],[195.5,-173.7],[196.3,-173.2],[196.9,-172.4],[197.1,-171.4],[196.9,-170.4]]);polygon(points=[[110.3,-81.1],[109.5,-80.6],[108.6,-80.4],[107.6,-80.6],[106.8,-81.1],[106.3,-81.9],[106.1,-82.9],[106.3,-83.9],[106.8,-84.7],[107.6,-85.2],[108.6,-85.4],[109.5,-85.2],[110.3,-84.7],[110.9,-83.9],[111.1,-82.9],[110.9,-81.9],[110.3,-81.1]]);
        };
    };

};
